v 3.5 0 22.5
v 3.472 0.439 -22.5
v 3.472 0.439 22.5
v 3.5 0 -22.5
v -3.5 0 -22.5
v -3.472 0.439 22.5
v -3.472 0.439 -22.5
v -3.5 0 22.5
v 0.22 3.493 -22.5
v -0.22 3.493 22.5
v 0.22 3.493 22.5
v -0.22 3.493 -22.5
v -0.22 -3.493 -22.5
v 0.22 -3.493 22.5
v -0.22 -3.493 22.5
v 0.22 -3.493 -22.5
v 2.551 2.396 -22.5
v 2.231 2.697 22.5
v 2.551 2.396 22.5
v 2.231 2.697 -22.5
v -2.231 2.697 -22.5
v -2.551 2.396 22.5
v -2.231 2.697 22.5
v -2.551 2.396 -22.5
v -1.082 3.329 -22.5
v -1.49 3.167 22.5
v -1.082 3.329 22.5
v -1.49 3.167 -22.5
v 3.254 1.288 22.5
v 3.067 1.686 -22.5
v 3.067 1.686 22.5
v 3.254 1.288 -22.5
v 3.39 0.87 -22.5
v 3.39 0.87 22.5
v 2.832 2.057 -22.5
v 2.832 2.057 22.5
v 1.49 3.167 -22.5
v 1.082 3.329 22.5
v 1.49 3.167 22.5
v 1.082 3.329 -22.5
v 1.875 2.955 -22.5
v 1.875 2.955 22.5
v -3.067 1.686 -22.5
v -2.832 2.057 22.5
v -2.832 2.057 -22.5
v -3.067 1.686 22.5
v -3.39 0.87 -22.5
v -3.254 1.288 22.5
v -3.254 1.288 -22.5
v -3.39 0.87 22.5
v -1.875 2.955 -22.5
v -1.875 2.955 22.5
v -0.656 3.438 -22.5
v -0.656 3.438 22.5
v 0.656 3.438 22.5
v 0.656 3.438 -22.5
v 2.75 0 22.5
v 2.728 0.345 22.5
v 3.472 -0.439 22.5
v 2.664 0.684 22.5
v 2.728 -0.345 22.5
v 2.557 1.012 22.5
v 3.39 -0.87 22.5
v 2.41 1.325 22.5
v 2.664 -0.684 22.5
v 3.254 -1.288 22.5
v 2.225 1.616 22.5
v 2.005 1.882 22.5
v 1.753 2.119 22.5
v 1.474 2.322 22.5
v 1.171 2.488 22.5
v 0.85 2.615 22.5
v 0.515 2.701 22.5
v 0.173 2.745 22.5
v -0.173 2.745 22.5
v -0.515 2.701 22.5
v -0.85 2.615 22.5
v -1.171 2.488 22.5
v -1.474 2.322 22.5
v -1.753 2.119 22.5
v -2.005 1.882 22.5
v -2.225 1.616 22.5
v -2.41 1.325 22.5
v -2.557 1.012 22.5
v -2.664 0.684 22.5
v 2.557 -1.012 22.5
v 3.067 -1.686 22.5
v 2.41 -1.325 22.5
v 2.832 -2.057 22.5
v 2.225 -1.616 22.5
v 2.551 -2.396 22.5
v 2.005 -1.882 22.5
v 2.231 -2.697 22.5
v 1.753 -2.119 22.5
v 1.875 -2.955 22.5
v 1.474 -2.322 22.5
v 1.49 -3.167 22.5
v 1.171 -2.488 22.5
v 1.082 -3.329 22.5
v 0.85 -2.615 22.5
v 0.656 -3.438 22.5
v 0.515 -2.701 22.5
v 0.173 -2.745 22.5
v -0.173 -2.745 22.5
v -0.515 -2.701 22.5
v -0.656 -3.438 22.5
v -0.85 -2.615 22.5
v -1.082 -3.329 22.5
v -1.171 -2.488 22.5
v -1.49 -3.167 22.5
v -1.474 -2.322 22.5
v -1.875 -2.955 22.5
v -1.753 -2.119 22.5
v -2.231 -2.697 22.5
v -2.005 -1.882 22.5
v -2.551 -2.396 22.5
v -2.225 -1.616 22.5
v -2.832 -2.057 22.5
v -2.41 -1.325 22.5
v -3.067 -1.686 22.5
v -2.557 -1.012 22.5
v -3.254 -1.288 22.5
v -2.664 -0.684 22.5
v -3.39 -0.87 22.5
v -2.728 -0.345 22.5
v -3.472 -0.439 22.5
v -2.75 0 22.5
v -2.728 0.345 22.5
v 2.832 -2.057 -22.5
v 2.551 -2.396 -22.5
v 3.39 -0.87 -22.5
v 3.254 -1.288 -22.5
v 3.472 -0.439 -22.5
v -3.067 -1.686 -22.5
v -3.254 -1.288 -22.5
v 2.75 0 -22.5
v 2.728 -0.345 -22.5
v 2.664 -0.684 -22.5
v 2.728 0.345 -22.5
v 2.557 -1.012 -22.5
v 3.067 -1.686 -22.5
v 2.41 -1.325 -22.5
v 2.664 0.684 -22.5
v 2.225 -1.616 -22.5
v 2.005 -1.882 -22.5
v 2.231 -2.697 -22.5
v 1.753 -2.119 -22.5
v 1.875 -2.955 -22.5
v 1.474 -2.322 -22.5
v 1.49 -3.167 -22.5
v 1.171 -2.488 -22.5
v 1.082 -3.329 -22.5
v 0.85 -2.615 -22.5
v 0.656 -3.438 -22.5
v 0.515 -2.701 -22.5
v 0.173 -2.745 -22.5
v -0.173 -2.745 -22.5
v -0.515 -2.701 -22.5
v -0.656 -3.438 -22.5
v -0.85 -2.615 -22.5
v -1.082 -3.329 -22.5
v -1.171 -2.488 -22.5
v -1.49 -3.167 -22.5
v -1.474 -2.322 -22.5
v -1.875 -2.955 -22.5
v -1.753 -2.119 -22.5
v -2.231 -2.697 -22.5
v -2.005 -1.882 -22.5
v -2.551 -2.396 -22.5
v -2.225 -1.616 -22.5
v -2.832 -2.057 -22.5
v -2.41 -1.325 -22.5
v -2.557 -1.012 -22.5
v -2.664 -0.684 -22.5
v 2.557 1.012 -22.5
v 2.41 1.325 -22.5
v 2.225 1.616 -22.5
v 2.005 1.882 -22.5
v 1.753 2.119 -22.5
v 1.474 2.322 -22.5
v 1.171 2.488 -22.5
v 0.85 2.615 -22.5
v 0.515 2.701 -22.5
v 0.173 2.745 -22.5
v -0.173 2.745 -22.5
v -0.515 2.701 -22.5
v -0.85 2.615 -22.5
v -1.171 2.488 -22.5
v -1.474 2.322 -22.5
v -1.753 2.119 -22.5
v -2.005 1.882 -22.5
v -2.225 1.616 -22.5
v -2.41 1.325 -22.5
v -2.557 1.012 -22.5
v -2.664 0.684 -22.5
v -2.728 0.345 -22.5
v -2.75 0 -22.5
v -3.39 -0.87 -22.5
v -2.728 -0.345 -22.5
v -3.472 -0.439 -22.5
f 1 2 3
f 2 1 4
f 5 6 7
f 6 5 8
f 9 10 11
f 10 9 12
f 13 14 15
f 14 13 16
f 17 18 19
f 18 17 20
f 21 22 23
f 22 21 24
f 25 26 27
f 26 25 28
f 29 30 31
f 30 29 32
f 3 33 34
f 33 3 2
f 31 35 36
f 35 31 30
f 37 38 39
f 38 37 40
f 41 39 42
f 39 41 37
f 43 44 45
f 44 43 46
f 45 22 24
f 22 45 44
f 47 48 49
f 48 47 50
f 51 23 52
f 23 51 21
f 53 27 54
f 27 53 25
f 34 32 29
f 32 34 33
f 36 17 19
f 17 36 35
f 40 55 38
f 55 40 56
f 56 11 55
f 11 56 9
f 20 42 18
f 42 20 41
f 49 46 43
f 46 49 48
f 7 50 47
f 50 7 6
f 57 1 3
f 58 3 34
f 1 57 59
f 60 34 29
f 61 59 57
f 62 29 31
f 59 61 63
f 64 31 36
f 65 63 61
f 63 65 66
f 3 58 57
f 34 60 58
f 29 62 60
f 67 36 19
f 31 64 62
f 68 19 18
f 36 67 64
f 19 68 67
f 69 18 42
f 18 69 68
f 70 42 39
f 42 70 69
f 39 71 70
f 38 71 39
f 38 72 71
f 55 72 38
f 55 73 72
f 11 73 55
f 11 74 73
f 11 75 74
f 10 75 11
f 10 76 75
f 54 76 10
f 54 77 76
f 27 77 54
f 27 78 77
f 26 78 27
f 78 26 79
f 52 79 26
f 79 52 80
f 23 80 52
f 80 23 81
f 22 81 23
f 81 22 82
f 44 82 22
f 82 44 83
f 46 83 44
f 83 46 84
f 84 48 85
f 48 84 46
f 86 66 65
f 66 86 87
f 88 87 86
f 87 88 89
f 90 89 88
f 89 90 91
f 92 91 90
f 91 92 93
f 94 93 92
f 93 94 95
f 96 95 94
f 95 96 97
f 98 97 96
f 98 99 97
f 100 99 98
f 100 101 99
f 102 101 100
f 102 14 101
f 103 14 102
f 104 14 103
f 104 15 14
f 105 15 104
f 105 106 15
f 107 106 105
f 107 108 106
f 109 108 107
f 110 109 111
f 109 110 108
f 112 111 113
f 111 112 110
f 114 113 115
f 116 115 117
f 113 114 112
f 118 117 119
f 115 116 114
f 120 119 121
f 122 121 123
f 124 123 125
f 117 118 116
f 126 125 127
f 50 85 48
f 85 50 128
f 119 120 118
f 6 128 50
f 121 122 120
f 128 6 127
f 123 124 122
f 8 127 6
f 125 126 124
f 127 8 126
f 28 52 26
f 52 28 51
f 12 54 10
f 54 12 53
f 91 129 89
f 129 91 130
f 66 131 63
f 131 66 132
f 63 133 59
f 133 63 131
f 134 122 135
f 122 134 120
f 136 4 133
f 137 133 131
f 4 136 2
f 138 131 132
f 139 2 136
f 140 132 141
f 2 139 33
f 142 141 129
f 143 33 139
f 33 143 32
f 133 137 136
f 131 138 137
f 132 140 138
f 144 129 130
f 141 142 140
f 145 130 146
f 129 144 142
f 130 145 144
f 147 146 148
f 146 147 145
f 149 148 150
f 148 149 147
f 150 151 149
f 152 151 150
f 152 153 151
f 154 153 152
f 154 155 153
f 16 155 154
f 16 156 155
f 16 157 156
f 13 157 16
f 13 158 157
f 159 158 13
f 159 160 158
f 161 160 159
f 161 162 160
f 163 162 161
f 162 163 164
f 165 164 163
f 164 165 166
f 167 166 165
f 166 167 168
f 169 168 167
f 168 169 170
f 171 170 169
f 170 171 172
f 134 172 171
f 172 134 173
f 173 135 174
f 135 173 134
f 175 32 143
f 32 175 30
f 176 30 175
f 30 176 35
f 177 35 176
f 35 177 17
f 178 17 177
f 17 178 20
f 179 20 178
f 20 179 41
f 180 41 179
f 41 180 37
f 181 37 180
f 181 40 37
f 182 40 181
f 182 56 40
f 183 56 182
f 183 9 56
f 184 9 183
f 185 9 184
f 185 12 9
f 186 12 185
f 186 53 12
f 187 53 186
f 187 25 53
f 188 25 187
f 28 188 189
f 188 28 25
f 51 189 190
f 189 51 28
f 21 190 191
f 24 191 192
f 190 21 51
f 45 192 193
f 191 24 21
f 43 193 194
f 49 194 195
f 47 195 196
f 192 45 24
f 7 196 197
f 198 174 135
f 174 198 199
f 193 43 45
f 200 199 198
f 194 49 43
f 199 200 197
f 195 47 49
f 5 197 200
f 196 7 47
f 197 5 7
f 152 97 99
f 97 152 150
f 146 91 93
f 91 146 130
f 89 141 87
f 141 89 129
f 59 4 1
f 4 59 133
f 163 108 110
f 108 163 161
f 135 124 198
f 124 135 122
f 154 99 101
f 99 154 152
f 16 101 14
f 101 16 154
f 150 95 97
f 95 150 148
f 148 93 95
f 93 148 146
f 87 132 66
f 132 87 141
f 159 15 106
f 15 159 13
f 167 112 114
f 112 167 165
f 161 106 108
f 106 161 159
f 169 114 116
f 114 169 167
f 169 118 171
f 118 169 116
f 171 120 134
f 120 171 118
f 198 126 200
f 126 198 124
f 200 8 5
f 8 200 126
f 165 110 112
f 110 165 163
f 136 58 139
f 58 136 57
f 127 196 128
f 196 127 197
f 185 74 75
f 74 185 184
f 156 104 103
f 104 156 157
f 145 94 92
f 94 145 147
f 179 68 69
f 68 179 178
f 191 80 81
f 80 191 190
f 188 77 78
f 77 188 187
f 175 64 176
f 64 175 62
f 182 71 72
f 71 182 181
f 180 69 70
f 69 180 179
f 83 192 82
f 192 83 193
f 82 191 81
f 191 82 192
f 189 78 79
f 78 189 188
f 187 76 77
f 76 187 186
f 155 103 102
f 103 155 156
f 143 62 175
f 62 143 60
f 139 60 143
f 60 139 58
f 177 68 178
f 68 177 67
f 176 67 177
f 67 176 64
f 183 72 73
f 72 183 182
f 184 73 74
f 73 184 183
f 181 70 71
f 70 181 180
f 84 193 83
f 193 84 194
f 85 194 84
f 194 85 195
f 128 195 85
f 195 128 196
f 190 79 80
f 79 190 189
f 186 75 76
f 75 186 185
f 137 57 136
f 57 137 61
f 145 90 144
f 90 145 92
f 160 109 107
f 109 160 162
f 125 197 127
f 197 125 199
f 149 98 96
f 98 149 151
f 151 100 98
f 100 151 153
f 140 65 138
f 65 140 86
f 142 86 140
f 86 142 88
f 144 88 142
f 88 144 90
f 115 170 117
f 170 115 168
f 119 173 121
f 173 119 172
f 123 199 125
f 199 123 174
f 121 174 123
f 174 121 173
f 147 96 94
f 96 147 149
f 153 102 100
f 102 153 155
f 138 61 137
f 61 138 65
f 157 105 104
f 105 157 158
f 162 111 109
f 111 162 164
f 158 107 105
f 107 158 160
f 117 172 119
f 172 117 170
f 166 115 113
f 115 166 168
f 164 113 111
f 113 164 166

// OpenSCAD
$fn = 50;


difference() {
	union() {
		translate(v = [0, 0, -22.5000000000]) {
			cylinder(h = 45, r = 3.5000000000);
		}
	}
	union() {
		translate(v = [0, 0, -100.0000000000]) {
			cylinder(h = 200, r = 2.7500000000);
		}
	}
}
